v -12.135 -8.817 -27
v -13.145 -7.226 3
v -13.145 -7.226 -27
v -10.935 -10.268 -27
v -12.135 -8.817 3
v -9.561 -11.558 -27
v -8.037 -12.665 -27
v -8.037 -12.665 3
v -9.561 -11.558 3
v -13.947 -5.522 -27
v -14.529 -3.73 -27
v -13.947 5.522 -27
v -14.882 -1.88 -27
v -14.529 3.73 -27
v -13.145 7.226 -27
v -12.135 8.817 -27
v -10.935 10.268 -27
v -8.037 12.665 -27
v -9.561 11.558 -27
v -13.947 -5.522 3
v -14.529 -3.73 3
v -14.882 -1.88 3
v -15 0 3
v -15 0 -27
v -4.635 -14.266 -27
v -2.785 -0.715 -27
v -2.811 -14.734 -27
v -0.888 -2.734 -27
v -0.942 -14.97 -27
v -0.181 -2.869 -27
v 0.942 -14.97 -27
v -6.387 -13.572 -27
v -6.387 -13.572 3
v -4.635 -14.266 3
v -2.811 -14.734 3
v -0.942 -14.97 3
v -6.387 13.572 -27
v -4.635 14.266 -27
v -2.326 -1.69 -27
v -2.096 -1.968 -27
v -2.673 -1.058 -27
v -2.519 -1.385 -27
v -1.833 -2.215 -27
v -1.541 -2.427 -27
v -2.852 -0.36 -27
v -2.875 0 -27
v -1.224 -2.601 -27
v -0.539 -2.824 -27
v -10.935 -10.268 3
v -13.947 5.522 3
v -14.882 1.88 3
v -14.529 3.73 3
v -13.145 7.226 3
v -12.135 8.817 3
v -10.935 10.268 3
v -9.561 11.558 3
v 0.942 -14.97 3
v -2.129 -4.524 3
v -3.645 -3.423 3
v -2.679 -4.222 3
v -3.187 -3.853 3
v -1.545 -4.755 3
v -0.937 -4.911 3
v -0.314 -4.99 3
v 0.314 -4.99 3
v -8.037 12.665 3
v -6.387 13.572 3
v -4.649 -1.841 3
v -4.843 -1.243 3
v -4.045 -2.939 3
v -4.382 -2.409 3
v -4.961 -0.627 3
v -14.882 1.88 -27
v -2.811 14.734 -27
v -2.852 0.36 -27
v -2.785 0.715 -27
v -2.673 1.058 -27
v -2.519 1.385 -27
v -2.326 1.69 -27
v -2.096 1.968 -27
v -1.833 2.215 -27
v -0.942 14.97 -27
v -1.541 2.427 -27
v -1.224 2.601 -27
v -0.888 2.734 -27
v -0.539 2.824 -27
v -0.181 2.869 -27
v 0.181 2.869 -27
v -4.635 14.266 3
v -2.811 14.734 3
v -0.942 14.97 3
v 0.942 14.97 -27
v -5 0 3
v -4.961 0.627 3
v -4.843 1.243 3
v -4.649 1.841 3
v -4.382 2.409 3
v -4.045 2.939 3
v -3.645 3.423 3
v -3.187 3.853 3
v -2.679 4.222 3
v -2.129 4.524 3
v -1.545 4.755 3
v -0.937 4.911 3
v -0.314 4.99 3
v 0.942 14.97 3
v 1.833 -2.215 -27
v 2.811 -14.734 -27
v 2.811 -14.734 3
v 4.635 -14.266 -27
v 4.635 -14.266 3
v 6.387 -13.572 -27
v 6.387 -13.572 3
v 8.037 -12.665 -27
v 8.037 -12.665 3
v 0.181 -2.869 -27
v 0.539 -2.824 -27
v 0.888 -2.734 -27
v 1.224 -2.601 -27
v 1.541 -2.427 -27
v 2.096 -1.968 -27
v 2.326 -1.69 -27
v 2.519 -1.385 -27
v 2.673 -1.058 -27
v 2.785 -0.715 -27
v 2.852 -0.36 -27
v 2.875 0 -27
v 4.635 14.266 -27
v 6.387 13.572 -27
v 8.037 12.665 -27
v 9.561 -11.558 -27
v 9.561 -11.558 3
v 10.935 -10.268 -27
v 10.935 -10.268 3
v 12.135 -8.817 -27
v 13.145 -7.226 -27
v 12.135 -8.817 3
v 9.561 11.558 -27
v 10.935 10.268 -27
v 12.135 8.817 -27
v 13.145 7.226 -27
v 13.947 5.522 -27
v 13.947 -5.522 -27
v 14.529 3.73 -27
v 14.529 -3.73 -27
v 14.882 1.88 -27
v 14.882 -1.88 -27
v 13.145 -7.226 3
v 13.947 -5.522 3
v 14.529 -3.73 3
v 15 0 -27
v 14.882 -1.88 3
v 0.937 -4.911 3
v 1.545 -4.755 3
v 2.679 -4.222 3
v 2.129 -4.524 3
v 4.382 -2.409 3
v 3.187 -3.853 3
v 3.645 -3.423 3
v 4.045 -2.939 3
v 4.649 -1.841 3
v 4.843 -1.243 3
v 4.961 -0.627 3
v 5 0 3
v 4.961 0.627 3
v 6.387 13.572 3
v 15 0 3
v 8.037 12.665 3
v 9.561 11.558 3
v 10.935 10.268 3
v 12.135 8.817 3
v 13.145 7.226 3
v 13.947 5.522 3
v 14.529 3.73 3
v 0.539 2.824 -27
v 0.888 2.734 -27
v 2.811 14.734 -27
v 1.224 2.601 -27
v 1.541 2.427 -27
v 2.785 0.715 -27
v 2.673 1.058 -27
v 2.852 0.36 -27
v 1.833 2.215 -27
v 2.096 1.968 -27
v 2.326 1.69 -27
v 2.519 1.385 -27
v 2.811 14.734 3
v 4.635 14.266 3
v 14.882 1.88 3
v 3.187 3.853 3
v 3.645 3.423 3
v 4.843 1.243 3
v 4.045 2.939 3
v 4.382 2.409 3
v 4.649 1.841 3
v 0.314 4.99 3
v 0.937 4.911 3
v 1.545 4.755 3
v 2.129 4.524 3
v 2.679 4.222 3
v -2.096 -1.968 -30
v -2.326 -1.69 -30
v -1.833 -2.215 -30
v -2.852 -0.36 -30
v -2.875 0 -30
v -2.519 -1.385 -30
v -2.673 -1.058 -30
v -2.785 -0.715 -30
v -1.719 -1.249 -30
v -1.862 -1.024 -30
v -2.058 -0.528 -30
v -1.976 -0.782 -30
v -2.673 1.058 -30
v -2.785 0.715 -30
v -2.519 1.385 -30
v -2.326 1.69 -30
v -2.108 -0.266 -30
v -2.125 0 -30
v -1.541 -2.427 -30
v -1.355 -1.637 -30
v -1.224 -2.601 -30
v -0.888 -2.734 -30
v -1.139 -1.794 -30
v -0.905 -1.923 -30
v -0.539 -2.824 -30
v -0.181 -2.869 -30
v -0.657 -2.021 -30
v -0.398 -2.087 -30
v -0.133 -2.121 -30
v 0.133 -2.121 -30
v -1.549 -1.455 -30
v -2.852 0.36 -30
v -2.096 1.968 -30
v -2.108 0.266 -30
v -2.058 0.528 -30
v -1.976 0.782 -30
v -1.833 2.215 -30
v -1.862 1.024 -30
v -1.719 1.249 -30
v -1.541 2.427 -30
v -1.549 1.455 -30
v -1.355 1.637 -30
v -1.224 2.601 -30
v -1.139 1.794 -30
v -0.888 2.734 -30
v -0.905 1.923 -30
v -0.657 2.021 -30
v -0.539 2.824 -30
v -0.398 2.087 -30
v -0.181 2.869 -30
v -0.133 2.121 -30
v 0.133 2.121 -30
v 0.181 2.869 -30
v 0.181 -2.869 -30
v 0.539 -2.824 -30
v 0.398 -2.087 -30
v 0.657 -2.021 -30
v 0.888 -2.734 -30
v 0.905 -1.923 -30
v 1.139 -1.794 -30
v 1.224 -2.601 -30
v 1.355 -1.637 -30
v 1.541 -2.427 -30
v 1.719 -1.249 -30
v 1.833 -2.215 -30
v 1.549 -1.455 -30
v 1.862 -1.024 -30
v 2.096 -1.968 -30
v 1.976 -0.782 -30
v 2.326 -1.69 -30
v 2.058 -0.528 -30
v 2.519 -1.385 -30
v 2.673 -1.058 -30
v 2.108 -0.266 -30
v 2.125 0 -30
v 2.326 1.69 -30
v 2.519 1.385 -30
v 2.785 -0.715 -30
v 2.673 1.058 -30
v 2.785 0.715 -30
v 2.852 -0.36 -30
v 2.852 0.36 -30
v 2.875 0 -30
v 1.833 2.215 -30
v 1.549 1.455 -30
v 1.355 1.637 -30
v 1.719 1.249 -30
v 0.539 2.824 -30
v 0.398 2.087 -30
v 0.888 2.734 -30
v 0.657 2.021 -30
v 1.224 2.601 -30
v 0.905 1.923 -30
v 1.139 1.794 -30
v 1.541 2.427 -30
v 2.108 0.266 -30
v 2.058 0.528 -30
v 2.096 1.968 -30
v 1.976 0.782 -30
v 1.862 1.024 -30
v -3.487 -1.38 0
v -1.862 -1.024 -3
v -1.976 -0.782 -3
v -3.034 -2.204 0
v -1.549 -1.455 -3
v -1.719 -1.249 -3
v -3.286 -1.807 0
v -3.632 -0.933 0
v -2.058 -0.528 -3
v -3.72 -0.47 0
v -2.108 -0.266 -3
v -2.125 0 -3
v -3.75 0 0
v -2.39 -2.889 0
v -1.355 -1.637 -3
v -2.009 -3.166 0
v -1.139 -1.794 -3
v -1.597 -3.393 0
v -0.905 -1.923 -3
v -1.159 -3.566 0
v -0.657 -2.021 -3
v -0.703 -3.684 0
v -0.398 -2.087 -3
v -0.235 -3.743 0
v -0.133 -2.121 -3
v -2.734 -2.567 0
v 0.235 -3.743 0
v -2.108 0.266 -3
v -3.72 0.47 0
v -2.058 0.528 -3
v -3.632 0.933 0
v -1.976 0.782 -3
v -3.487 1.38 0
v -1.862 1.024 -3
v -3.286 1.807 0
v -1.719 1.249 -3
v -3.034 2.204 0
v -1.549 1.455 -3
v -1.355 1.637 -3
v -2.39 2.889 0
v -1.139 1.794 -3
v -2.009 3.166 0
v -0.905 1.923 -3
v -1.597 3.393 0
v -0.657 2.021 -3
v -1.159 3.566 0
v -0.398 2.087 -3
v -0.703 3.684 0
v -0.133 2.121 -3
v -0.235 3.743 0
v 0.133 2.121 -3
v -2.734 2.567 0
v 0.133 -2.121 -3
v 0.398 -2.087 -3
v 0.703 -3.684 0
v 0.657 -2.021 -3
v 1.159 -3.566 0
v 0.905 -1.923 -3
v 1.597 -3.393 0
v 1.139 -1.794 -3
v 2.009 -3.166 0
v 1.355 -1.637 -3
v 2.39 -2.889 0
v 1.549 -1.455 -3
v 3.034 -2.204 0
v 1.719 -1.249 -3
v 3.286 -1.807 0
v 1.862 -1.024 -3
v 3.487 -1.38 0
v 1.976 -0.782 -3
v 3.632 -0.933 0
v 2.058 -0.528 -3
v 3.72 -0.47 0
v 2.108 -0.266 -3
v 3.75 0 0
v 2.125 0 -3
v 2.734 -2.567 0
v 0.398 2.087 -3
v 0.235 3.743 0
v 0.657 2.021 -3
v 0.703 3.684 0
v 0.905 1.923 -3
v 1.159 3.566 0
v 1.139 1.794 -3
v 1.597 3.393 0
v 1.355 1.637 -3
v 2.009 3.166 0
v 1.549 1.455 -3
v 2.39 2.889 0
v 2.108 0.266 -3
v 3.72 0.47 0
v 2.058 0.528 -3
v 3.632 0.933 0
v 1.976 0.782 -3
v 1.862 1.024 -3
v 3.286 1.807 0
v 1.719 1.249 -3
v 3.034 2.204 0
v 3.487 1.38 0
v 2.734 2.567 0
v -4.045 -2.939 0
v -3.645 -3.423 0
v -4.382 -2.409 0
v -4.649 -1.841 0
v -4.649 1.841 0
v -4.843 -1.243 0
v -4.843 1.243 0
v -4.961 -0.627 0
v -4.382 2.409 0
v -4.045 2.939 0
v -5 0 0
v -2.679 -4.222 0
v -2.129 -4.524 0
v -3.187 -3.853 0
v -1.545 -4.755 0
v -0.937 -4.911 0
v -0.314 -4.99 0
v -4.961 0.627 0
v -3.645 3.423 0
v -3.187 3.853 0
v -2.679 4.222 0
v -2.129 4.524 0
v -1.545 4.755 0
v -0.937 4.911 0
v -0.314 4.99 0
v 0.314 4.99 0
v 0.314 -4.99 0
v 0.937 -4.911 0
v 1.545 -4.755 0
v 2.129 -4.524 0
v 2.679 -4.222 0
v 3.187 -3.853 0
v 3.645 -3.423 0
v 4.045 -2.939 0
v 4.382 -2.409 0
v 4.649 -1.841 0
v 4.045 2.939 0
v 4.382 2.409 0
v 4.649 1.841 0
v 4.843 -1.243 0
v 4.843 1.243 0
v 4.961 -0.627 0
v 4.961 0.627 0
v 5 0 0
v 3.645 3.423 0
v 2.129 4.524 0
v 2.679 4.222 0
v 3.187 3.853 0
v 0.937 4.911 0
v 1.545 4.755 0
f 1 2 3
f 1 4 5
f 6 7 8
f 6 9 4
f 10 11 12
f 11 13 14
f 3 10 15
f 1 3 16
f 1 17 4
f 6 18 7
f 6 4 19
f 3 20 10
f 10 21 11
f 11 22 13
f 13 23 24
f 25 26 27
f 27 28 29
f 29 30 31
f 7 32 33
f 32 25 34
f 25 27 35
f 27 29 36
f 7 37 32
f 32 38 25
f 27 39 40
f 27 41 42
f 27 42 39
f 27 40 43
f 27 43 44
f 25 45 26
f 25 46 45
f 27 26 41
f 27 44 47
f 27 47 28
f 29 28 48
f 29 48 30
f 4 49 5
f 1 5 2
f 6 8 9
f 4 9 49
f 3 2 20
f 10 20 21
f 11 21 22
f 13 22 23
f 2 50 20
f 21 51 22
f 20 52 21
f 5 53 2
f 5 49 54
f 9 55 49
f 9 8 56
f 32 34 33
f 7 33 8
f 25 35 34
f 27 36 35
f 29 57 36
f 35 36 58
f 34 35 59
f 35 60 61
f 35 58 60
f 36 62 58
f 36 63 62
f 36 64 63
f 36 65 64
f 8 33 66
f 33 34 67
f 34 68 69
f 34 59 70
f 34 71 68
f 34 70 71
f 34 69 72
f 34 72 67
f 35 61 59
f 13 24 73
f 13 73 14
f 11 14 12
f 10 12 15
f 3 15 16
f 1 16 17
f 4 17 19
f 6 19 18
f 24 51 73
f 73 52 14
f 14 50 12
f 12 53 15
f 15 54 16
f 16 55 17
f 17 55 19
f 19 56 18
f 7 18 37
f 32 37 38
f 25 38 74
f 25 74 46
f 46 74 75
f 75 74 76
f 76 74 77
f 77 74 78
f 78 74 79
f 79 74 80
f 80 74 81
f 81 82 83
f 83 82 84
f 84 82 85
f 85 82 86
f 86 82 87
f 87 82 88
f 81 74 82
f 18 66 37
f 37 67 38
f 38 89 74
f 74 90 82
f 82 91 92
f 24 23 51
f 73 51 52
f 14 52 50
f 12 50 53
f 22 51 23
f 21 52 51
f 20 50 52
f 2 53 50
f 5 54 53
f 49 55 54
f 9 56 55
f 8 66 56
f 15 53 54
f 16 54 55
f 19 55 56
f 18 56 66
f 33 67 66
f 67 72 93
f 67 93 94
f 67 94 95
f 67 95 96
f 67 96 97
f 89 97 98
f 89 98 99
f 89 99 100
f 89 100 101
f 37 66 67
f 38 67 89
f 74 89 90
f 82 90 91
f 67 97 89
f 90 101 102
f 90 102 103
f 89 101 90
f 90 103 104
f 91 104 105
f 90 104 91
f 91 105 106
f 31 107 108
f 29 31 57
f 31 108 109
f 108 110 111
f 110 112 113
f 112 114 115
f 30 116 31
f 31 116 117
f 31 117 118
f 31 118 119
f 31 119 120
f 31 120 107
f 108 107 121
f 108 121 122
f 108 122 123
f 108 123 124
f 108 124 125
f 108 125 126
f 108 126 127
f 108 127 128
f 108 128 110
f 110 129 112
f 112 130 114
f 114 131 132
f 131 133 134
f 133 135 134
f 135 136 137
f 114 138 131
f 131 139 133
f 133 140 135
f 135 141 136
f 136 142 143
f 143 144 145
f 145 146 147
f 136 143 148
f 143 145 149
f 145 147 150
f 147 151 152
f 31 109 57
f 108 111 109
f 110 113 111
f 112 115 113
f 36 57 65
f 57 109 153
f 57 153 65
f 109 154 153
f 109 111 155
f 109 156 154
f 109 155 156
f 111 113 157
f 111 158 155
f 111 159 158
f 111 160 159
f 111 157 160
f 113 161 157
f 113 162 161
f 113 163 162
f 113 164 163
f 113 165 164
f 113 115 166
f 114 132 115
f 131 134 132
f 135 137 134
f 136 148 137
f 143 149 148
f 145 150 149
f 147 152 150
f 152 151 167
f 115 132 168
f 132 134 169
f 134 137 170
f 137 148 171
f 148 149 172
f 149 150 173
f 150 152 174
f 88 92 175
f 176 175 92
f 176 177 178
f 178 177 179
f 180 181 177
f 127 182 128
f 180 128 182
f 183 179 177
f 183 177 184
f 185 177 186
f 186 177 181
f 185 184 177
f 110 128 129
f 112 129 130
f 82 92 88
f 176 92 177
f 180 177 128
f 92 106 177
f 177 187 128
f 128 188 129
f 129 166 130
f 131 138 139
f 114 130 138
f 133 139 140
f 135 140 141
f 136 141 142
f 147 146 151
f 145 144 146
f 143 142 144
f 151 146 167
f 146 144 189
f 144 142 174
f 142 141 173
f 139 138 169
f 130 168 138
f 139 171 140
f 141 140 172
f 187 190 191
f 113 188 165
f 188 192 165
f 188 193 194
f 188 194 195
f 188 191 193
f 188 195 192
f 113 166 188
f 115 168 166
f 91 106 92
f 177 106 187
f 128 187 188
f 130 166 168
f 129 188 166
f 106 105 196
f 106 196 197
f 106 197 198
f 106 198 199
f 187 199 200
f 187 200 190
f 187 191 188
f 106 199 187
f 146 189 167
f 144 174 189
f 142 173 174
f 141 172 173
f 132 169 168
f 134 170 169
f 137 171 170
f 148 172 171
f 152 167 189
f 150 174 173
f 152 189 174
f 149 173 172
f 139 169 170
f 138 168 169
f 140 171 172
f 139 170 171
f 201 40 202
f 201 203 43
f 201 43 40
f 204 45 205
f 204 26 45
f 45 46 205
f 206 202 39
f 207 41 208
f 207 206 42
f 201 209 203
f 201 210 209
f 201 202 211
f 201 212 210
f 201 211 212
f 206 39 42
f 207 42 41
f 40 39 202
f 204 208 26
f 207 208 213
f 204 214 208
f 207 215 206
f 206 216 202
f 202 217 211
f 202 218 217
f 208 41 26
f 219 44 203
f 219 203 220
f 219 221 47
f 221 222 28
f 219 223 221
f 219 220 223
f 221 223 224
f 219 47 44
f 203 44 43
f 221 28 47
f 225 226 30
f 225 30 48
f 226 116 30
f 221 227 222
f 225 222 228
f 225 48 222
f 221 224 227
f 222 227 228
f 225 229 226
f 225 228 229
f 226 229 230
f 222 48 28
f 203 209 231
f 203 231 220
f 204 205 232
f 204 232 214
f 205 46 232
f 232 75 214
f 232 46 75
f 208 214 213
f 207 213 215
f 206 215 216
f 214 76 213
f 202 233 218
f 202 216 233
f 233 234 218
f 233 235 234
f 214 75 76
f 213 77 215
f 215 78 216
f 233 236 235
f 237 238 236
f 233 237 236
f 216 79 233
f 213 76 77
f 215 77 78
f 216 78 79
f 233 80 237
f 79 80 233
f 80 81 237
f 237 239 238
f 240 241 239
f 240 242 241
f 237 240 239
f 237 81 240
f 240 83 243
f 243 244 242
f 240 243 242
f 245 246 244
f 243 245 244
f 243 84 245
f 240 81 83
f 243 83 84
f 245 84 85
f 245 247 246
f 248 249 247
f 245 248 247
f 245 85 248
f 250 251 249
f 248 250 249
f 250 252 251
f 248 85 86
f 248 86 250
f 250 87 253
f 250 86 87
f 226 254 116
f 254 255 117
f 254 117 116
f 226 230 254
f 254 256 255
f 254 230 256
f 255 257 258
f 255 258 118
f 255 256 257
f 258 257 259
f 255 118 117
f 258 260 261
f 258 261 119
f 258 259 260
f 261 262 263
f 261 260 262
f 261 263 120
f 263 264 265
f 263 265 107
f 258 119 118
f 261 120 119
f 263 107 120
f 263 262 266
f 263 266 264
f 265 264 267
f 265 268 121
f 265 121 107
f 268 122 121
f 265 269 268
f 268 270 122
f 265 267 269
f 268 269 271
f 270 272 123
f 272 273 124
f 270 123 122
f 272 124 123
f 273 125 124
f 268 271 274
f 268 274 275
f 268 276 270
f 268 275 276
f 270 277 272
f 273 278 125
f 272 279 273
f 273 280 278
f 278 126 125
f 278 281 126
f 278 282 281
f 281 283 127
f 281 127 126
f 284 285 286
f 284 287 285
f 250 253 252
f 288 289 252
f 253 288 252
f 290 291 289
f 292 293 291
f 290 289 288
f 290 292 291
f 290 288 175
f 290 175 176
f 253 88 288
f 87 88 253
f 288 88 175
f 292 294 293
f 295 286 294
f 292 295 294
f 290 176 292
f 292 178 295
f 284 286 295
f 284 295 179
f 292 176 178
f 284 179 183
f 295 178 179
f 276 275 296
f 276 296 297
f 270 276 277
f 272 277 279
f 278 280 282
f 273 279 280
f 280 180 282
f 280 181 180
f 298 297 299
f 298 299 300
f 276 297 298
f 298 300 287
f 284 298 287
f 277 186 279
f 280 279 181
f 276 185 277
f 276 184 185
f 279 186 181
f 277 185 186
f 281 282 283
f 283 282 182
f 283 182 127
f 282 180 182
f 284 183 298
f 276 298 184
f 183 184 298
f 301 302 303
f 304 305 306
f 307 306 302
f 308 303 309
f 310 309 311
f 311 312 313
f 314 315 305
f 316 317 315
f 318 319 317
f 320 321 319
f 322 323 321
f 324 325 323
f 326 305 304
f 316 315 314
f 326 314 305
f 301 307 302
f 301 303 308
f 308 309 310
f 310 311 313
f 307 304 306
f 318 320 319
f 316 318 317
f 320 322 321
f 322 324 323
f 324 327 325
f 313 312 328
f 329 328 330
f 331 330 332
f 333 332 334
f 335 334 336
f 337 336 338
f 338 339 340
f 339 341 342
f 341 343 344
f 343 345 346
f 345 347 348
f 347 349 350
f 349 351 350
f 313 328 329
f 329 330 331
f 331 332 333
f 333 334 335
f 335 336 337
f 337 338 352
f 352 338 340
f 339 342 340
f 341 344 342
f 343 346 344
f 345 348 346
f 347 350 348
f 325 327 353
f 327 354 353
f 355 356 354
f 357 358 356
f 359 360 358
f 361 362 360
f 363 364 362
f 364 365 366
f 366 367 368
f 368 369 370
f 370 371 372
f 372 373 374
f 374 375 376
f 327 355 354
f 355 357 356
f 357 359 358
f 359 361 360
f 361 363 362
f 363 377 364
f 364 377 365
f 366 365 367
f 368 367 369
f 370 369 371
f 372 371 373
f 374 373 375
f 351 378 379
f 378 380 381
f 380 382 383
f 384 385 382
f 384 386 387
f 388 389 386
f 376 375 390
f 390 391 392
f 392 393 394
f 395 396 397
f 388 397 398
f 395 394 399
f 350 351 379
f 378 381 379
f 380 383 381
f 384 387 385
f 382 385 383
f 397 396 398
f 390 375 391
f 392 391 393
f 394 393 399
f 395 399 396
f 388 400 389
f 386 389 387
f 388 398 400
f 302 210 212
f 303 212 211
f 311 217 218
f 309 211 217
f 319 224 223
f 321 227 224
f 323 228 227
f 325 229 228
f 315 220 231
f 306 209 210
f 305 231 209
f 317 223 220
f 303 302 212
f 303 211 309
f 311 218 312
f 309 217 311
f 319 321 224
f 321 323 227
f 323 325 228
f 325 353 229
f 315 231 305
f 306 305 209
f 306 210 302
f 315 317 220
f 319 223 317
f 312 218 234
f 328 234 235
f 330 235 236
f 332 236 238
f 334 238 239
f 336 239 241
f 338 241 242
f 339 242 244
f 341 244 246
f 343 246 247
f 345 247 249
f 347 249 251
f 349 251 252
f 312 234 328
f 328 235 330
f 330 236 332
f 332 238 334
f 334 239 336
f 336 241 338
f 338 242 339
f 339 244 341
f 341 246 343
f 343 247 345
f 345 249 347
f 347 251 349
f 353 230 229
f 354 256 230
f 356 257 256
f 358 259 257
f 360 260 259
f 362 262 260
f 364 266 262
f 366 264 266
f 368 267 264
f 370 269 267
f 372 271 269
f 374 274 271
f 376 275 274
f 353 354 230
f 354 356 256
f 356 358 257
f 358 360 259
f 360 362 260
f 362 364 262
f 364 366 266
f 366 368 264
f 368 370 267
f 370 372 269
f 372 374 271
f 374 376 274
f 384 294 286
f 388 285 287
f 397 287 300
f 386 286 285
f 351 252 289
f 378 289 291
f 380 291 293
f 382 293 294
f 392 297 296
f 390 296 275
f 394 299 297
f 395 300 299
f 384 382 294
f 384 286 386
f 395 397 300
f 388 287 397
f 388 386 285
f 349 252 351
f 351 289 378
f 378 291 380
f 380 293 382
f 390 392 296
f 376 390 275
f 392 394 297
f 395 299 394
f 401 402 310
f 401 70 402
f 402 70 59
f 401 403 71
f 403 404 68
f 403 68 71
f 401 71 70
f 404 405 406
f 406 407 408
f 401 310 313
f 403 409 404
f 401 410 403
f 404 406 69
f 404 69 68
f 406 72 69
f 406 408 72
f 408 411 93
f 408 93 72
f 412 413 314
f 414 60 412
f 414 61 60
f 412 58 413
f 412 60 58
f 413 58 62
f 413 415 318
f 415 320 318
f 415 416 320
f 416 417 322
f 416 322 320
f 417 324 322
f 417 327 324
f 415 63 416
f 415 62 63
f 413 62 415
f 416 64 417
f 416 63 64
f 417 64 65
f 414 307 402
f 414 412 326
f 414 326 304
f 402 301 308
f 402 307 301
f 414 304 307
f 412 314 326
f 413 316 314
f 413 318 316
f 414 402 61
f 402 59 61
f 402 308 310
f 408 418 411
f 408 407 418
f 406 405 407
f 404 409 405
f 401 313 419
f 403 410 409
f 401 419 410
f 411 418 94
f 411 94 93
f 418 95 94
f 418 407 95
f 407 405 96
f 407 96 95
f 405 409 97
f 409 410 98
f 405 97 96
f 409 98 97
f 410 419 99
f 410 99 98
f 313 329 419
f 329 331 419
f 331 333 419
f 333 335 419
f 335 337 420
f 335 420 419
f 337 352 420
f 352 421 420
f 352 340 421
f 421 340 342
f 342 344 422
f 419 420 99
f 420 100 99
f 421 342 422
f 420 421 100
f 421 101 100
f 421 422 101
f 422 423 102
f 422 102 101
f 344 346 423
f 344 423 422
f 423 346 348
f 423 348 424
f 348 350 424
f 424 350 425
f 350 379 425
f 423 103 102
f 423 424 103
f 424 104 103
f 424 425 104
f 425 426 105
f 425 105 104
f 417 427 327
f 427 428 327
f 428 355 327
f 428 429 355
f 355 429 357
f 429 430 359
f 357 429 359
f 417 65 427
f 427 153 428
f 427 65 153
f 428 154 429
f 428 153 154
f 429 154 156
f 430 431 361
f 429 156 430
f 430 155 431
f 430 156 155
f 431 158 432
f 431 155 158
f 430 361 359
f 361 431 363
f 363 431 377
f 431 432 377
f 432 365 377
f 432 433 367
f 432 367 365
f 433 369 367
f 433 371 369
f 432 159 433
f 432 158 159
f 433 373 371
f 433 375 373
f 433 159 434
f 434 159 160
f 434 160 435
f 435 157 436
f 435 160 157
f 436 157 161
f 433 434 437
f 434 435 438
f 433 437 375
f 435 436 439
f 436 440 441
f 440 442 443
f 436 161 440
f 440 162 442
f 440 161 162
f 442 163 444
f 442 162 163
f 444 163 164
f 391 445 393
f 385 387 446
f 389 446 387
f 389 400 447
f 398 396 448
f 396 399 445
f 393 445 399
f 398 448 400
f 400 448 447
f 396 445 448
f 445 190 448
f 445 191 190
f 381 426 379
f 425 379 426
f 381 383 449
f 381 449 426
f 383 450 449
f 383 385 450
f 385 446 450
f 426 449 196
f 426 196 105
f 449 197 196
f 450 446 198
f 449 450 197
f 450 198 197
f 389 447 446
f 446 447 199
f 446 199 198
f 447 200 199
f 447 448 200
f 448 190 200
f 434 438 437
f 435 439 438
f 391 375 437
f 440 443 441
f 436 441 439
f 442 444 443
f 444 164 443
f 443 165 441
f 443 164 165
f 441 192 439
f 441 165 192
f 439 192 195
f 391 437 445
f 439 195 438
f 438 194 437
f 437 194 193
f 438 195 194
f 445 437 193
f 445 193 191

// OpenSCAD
$fn = 50;

difference() {
	union() {
		translate(v = [0, 0, -27.0]) {
			cylinder(h = 30, r = 15.0);
		}
		#translate(v = [0, 0, -30.0]) {
			cylinder(h = 30, r = 2.875);
		}
	}
	union() {
		translate(v = [0, 0, 0]) {
			rotate(a = [0, 0, 0]) {
				difference() {
					union() {
						translate(v = [0, 0, -30.0]) {
							cylinder(h = 30, r = 2.0);
						}
						translate(v = [0, 0, -3]) {
							cylinder(h = 3, r1 = 2.125, r2 = 3.75);
						}
						translate(v = [0, 0, -30.0]) {
							cylinder(h = 30, r = 2.125);
						}
						translate(v = [0, 0, -30.0]) {
							cylinder(h = 30, r = 2.0);
						}
					}
					union();
				}
			}
		}
		#cylinder(h = 3, r = 5.0);
	}
}
